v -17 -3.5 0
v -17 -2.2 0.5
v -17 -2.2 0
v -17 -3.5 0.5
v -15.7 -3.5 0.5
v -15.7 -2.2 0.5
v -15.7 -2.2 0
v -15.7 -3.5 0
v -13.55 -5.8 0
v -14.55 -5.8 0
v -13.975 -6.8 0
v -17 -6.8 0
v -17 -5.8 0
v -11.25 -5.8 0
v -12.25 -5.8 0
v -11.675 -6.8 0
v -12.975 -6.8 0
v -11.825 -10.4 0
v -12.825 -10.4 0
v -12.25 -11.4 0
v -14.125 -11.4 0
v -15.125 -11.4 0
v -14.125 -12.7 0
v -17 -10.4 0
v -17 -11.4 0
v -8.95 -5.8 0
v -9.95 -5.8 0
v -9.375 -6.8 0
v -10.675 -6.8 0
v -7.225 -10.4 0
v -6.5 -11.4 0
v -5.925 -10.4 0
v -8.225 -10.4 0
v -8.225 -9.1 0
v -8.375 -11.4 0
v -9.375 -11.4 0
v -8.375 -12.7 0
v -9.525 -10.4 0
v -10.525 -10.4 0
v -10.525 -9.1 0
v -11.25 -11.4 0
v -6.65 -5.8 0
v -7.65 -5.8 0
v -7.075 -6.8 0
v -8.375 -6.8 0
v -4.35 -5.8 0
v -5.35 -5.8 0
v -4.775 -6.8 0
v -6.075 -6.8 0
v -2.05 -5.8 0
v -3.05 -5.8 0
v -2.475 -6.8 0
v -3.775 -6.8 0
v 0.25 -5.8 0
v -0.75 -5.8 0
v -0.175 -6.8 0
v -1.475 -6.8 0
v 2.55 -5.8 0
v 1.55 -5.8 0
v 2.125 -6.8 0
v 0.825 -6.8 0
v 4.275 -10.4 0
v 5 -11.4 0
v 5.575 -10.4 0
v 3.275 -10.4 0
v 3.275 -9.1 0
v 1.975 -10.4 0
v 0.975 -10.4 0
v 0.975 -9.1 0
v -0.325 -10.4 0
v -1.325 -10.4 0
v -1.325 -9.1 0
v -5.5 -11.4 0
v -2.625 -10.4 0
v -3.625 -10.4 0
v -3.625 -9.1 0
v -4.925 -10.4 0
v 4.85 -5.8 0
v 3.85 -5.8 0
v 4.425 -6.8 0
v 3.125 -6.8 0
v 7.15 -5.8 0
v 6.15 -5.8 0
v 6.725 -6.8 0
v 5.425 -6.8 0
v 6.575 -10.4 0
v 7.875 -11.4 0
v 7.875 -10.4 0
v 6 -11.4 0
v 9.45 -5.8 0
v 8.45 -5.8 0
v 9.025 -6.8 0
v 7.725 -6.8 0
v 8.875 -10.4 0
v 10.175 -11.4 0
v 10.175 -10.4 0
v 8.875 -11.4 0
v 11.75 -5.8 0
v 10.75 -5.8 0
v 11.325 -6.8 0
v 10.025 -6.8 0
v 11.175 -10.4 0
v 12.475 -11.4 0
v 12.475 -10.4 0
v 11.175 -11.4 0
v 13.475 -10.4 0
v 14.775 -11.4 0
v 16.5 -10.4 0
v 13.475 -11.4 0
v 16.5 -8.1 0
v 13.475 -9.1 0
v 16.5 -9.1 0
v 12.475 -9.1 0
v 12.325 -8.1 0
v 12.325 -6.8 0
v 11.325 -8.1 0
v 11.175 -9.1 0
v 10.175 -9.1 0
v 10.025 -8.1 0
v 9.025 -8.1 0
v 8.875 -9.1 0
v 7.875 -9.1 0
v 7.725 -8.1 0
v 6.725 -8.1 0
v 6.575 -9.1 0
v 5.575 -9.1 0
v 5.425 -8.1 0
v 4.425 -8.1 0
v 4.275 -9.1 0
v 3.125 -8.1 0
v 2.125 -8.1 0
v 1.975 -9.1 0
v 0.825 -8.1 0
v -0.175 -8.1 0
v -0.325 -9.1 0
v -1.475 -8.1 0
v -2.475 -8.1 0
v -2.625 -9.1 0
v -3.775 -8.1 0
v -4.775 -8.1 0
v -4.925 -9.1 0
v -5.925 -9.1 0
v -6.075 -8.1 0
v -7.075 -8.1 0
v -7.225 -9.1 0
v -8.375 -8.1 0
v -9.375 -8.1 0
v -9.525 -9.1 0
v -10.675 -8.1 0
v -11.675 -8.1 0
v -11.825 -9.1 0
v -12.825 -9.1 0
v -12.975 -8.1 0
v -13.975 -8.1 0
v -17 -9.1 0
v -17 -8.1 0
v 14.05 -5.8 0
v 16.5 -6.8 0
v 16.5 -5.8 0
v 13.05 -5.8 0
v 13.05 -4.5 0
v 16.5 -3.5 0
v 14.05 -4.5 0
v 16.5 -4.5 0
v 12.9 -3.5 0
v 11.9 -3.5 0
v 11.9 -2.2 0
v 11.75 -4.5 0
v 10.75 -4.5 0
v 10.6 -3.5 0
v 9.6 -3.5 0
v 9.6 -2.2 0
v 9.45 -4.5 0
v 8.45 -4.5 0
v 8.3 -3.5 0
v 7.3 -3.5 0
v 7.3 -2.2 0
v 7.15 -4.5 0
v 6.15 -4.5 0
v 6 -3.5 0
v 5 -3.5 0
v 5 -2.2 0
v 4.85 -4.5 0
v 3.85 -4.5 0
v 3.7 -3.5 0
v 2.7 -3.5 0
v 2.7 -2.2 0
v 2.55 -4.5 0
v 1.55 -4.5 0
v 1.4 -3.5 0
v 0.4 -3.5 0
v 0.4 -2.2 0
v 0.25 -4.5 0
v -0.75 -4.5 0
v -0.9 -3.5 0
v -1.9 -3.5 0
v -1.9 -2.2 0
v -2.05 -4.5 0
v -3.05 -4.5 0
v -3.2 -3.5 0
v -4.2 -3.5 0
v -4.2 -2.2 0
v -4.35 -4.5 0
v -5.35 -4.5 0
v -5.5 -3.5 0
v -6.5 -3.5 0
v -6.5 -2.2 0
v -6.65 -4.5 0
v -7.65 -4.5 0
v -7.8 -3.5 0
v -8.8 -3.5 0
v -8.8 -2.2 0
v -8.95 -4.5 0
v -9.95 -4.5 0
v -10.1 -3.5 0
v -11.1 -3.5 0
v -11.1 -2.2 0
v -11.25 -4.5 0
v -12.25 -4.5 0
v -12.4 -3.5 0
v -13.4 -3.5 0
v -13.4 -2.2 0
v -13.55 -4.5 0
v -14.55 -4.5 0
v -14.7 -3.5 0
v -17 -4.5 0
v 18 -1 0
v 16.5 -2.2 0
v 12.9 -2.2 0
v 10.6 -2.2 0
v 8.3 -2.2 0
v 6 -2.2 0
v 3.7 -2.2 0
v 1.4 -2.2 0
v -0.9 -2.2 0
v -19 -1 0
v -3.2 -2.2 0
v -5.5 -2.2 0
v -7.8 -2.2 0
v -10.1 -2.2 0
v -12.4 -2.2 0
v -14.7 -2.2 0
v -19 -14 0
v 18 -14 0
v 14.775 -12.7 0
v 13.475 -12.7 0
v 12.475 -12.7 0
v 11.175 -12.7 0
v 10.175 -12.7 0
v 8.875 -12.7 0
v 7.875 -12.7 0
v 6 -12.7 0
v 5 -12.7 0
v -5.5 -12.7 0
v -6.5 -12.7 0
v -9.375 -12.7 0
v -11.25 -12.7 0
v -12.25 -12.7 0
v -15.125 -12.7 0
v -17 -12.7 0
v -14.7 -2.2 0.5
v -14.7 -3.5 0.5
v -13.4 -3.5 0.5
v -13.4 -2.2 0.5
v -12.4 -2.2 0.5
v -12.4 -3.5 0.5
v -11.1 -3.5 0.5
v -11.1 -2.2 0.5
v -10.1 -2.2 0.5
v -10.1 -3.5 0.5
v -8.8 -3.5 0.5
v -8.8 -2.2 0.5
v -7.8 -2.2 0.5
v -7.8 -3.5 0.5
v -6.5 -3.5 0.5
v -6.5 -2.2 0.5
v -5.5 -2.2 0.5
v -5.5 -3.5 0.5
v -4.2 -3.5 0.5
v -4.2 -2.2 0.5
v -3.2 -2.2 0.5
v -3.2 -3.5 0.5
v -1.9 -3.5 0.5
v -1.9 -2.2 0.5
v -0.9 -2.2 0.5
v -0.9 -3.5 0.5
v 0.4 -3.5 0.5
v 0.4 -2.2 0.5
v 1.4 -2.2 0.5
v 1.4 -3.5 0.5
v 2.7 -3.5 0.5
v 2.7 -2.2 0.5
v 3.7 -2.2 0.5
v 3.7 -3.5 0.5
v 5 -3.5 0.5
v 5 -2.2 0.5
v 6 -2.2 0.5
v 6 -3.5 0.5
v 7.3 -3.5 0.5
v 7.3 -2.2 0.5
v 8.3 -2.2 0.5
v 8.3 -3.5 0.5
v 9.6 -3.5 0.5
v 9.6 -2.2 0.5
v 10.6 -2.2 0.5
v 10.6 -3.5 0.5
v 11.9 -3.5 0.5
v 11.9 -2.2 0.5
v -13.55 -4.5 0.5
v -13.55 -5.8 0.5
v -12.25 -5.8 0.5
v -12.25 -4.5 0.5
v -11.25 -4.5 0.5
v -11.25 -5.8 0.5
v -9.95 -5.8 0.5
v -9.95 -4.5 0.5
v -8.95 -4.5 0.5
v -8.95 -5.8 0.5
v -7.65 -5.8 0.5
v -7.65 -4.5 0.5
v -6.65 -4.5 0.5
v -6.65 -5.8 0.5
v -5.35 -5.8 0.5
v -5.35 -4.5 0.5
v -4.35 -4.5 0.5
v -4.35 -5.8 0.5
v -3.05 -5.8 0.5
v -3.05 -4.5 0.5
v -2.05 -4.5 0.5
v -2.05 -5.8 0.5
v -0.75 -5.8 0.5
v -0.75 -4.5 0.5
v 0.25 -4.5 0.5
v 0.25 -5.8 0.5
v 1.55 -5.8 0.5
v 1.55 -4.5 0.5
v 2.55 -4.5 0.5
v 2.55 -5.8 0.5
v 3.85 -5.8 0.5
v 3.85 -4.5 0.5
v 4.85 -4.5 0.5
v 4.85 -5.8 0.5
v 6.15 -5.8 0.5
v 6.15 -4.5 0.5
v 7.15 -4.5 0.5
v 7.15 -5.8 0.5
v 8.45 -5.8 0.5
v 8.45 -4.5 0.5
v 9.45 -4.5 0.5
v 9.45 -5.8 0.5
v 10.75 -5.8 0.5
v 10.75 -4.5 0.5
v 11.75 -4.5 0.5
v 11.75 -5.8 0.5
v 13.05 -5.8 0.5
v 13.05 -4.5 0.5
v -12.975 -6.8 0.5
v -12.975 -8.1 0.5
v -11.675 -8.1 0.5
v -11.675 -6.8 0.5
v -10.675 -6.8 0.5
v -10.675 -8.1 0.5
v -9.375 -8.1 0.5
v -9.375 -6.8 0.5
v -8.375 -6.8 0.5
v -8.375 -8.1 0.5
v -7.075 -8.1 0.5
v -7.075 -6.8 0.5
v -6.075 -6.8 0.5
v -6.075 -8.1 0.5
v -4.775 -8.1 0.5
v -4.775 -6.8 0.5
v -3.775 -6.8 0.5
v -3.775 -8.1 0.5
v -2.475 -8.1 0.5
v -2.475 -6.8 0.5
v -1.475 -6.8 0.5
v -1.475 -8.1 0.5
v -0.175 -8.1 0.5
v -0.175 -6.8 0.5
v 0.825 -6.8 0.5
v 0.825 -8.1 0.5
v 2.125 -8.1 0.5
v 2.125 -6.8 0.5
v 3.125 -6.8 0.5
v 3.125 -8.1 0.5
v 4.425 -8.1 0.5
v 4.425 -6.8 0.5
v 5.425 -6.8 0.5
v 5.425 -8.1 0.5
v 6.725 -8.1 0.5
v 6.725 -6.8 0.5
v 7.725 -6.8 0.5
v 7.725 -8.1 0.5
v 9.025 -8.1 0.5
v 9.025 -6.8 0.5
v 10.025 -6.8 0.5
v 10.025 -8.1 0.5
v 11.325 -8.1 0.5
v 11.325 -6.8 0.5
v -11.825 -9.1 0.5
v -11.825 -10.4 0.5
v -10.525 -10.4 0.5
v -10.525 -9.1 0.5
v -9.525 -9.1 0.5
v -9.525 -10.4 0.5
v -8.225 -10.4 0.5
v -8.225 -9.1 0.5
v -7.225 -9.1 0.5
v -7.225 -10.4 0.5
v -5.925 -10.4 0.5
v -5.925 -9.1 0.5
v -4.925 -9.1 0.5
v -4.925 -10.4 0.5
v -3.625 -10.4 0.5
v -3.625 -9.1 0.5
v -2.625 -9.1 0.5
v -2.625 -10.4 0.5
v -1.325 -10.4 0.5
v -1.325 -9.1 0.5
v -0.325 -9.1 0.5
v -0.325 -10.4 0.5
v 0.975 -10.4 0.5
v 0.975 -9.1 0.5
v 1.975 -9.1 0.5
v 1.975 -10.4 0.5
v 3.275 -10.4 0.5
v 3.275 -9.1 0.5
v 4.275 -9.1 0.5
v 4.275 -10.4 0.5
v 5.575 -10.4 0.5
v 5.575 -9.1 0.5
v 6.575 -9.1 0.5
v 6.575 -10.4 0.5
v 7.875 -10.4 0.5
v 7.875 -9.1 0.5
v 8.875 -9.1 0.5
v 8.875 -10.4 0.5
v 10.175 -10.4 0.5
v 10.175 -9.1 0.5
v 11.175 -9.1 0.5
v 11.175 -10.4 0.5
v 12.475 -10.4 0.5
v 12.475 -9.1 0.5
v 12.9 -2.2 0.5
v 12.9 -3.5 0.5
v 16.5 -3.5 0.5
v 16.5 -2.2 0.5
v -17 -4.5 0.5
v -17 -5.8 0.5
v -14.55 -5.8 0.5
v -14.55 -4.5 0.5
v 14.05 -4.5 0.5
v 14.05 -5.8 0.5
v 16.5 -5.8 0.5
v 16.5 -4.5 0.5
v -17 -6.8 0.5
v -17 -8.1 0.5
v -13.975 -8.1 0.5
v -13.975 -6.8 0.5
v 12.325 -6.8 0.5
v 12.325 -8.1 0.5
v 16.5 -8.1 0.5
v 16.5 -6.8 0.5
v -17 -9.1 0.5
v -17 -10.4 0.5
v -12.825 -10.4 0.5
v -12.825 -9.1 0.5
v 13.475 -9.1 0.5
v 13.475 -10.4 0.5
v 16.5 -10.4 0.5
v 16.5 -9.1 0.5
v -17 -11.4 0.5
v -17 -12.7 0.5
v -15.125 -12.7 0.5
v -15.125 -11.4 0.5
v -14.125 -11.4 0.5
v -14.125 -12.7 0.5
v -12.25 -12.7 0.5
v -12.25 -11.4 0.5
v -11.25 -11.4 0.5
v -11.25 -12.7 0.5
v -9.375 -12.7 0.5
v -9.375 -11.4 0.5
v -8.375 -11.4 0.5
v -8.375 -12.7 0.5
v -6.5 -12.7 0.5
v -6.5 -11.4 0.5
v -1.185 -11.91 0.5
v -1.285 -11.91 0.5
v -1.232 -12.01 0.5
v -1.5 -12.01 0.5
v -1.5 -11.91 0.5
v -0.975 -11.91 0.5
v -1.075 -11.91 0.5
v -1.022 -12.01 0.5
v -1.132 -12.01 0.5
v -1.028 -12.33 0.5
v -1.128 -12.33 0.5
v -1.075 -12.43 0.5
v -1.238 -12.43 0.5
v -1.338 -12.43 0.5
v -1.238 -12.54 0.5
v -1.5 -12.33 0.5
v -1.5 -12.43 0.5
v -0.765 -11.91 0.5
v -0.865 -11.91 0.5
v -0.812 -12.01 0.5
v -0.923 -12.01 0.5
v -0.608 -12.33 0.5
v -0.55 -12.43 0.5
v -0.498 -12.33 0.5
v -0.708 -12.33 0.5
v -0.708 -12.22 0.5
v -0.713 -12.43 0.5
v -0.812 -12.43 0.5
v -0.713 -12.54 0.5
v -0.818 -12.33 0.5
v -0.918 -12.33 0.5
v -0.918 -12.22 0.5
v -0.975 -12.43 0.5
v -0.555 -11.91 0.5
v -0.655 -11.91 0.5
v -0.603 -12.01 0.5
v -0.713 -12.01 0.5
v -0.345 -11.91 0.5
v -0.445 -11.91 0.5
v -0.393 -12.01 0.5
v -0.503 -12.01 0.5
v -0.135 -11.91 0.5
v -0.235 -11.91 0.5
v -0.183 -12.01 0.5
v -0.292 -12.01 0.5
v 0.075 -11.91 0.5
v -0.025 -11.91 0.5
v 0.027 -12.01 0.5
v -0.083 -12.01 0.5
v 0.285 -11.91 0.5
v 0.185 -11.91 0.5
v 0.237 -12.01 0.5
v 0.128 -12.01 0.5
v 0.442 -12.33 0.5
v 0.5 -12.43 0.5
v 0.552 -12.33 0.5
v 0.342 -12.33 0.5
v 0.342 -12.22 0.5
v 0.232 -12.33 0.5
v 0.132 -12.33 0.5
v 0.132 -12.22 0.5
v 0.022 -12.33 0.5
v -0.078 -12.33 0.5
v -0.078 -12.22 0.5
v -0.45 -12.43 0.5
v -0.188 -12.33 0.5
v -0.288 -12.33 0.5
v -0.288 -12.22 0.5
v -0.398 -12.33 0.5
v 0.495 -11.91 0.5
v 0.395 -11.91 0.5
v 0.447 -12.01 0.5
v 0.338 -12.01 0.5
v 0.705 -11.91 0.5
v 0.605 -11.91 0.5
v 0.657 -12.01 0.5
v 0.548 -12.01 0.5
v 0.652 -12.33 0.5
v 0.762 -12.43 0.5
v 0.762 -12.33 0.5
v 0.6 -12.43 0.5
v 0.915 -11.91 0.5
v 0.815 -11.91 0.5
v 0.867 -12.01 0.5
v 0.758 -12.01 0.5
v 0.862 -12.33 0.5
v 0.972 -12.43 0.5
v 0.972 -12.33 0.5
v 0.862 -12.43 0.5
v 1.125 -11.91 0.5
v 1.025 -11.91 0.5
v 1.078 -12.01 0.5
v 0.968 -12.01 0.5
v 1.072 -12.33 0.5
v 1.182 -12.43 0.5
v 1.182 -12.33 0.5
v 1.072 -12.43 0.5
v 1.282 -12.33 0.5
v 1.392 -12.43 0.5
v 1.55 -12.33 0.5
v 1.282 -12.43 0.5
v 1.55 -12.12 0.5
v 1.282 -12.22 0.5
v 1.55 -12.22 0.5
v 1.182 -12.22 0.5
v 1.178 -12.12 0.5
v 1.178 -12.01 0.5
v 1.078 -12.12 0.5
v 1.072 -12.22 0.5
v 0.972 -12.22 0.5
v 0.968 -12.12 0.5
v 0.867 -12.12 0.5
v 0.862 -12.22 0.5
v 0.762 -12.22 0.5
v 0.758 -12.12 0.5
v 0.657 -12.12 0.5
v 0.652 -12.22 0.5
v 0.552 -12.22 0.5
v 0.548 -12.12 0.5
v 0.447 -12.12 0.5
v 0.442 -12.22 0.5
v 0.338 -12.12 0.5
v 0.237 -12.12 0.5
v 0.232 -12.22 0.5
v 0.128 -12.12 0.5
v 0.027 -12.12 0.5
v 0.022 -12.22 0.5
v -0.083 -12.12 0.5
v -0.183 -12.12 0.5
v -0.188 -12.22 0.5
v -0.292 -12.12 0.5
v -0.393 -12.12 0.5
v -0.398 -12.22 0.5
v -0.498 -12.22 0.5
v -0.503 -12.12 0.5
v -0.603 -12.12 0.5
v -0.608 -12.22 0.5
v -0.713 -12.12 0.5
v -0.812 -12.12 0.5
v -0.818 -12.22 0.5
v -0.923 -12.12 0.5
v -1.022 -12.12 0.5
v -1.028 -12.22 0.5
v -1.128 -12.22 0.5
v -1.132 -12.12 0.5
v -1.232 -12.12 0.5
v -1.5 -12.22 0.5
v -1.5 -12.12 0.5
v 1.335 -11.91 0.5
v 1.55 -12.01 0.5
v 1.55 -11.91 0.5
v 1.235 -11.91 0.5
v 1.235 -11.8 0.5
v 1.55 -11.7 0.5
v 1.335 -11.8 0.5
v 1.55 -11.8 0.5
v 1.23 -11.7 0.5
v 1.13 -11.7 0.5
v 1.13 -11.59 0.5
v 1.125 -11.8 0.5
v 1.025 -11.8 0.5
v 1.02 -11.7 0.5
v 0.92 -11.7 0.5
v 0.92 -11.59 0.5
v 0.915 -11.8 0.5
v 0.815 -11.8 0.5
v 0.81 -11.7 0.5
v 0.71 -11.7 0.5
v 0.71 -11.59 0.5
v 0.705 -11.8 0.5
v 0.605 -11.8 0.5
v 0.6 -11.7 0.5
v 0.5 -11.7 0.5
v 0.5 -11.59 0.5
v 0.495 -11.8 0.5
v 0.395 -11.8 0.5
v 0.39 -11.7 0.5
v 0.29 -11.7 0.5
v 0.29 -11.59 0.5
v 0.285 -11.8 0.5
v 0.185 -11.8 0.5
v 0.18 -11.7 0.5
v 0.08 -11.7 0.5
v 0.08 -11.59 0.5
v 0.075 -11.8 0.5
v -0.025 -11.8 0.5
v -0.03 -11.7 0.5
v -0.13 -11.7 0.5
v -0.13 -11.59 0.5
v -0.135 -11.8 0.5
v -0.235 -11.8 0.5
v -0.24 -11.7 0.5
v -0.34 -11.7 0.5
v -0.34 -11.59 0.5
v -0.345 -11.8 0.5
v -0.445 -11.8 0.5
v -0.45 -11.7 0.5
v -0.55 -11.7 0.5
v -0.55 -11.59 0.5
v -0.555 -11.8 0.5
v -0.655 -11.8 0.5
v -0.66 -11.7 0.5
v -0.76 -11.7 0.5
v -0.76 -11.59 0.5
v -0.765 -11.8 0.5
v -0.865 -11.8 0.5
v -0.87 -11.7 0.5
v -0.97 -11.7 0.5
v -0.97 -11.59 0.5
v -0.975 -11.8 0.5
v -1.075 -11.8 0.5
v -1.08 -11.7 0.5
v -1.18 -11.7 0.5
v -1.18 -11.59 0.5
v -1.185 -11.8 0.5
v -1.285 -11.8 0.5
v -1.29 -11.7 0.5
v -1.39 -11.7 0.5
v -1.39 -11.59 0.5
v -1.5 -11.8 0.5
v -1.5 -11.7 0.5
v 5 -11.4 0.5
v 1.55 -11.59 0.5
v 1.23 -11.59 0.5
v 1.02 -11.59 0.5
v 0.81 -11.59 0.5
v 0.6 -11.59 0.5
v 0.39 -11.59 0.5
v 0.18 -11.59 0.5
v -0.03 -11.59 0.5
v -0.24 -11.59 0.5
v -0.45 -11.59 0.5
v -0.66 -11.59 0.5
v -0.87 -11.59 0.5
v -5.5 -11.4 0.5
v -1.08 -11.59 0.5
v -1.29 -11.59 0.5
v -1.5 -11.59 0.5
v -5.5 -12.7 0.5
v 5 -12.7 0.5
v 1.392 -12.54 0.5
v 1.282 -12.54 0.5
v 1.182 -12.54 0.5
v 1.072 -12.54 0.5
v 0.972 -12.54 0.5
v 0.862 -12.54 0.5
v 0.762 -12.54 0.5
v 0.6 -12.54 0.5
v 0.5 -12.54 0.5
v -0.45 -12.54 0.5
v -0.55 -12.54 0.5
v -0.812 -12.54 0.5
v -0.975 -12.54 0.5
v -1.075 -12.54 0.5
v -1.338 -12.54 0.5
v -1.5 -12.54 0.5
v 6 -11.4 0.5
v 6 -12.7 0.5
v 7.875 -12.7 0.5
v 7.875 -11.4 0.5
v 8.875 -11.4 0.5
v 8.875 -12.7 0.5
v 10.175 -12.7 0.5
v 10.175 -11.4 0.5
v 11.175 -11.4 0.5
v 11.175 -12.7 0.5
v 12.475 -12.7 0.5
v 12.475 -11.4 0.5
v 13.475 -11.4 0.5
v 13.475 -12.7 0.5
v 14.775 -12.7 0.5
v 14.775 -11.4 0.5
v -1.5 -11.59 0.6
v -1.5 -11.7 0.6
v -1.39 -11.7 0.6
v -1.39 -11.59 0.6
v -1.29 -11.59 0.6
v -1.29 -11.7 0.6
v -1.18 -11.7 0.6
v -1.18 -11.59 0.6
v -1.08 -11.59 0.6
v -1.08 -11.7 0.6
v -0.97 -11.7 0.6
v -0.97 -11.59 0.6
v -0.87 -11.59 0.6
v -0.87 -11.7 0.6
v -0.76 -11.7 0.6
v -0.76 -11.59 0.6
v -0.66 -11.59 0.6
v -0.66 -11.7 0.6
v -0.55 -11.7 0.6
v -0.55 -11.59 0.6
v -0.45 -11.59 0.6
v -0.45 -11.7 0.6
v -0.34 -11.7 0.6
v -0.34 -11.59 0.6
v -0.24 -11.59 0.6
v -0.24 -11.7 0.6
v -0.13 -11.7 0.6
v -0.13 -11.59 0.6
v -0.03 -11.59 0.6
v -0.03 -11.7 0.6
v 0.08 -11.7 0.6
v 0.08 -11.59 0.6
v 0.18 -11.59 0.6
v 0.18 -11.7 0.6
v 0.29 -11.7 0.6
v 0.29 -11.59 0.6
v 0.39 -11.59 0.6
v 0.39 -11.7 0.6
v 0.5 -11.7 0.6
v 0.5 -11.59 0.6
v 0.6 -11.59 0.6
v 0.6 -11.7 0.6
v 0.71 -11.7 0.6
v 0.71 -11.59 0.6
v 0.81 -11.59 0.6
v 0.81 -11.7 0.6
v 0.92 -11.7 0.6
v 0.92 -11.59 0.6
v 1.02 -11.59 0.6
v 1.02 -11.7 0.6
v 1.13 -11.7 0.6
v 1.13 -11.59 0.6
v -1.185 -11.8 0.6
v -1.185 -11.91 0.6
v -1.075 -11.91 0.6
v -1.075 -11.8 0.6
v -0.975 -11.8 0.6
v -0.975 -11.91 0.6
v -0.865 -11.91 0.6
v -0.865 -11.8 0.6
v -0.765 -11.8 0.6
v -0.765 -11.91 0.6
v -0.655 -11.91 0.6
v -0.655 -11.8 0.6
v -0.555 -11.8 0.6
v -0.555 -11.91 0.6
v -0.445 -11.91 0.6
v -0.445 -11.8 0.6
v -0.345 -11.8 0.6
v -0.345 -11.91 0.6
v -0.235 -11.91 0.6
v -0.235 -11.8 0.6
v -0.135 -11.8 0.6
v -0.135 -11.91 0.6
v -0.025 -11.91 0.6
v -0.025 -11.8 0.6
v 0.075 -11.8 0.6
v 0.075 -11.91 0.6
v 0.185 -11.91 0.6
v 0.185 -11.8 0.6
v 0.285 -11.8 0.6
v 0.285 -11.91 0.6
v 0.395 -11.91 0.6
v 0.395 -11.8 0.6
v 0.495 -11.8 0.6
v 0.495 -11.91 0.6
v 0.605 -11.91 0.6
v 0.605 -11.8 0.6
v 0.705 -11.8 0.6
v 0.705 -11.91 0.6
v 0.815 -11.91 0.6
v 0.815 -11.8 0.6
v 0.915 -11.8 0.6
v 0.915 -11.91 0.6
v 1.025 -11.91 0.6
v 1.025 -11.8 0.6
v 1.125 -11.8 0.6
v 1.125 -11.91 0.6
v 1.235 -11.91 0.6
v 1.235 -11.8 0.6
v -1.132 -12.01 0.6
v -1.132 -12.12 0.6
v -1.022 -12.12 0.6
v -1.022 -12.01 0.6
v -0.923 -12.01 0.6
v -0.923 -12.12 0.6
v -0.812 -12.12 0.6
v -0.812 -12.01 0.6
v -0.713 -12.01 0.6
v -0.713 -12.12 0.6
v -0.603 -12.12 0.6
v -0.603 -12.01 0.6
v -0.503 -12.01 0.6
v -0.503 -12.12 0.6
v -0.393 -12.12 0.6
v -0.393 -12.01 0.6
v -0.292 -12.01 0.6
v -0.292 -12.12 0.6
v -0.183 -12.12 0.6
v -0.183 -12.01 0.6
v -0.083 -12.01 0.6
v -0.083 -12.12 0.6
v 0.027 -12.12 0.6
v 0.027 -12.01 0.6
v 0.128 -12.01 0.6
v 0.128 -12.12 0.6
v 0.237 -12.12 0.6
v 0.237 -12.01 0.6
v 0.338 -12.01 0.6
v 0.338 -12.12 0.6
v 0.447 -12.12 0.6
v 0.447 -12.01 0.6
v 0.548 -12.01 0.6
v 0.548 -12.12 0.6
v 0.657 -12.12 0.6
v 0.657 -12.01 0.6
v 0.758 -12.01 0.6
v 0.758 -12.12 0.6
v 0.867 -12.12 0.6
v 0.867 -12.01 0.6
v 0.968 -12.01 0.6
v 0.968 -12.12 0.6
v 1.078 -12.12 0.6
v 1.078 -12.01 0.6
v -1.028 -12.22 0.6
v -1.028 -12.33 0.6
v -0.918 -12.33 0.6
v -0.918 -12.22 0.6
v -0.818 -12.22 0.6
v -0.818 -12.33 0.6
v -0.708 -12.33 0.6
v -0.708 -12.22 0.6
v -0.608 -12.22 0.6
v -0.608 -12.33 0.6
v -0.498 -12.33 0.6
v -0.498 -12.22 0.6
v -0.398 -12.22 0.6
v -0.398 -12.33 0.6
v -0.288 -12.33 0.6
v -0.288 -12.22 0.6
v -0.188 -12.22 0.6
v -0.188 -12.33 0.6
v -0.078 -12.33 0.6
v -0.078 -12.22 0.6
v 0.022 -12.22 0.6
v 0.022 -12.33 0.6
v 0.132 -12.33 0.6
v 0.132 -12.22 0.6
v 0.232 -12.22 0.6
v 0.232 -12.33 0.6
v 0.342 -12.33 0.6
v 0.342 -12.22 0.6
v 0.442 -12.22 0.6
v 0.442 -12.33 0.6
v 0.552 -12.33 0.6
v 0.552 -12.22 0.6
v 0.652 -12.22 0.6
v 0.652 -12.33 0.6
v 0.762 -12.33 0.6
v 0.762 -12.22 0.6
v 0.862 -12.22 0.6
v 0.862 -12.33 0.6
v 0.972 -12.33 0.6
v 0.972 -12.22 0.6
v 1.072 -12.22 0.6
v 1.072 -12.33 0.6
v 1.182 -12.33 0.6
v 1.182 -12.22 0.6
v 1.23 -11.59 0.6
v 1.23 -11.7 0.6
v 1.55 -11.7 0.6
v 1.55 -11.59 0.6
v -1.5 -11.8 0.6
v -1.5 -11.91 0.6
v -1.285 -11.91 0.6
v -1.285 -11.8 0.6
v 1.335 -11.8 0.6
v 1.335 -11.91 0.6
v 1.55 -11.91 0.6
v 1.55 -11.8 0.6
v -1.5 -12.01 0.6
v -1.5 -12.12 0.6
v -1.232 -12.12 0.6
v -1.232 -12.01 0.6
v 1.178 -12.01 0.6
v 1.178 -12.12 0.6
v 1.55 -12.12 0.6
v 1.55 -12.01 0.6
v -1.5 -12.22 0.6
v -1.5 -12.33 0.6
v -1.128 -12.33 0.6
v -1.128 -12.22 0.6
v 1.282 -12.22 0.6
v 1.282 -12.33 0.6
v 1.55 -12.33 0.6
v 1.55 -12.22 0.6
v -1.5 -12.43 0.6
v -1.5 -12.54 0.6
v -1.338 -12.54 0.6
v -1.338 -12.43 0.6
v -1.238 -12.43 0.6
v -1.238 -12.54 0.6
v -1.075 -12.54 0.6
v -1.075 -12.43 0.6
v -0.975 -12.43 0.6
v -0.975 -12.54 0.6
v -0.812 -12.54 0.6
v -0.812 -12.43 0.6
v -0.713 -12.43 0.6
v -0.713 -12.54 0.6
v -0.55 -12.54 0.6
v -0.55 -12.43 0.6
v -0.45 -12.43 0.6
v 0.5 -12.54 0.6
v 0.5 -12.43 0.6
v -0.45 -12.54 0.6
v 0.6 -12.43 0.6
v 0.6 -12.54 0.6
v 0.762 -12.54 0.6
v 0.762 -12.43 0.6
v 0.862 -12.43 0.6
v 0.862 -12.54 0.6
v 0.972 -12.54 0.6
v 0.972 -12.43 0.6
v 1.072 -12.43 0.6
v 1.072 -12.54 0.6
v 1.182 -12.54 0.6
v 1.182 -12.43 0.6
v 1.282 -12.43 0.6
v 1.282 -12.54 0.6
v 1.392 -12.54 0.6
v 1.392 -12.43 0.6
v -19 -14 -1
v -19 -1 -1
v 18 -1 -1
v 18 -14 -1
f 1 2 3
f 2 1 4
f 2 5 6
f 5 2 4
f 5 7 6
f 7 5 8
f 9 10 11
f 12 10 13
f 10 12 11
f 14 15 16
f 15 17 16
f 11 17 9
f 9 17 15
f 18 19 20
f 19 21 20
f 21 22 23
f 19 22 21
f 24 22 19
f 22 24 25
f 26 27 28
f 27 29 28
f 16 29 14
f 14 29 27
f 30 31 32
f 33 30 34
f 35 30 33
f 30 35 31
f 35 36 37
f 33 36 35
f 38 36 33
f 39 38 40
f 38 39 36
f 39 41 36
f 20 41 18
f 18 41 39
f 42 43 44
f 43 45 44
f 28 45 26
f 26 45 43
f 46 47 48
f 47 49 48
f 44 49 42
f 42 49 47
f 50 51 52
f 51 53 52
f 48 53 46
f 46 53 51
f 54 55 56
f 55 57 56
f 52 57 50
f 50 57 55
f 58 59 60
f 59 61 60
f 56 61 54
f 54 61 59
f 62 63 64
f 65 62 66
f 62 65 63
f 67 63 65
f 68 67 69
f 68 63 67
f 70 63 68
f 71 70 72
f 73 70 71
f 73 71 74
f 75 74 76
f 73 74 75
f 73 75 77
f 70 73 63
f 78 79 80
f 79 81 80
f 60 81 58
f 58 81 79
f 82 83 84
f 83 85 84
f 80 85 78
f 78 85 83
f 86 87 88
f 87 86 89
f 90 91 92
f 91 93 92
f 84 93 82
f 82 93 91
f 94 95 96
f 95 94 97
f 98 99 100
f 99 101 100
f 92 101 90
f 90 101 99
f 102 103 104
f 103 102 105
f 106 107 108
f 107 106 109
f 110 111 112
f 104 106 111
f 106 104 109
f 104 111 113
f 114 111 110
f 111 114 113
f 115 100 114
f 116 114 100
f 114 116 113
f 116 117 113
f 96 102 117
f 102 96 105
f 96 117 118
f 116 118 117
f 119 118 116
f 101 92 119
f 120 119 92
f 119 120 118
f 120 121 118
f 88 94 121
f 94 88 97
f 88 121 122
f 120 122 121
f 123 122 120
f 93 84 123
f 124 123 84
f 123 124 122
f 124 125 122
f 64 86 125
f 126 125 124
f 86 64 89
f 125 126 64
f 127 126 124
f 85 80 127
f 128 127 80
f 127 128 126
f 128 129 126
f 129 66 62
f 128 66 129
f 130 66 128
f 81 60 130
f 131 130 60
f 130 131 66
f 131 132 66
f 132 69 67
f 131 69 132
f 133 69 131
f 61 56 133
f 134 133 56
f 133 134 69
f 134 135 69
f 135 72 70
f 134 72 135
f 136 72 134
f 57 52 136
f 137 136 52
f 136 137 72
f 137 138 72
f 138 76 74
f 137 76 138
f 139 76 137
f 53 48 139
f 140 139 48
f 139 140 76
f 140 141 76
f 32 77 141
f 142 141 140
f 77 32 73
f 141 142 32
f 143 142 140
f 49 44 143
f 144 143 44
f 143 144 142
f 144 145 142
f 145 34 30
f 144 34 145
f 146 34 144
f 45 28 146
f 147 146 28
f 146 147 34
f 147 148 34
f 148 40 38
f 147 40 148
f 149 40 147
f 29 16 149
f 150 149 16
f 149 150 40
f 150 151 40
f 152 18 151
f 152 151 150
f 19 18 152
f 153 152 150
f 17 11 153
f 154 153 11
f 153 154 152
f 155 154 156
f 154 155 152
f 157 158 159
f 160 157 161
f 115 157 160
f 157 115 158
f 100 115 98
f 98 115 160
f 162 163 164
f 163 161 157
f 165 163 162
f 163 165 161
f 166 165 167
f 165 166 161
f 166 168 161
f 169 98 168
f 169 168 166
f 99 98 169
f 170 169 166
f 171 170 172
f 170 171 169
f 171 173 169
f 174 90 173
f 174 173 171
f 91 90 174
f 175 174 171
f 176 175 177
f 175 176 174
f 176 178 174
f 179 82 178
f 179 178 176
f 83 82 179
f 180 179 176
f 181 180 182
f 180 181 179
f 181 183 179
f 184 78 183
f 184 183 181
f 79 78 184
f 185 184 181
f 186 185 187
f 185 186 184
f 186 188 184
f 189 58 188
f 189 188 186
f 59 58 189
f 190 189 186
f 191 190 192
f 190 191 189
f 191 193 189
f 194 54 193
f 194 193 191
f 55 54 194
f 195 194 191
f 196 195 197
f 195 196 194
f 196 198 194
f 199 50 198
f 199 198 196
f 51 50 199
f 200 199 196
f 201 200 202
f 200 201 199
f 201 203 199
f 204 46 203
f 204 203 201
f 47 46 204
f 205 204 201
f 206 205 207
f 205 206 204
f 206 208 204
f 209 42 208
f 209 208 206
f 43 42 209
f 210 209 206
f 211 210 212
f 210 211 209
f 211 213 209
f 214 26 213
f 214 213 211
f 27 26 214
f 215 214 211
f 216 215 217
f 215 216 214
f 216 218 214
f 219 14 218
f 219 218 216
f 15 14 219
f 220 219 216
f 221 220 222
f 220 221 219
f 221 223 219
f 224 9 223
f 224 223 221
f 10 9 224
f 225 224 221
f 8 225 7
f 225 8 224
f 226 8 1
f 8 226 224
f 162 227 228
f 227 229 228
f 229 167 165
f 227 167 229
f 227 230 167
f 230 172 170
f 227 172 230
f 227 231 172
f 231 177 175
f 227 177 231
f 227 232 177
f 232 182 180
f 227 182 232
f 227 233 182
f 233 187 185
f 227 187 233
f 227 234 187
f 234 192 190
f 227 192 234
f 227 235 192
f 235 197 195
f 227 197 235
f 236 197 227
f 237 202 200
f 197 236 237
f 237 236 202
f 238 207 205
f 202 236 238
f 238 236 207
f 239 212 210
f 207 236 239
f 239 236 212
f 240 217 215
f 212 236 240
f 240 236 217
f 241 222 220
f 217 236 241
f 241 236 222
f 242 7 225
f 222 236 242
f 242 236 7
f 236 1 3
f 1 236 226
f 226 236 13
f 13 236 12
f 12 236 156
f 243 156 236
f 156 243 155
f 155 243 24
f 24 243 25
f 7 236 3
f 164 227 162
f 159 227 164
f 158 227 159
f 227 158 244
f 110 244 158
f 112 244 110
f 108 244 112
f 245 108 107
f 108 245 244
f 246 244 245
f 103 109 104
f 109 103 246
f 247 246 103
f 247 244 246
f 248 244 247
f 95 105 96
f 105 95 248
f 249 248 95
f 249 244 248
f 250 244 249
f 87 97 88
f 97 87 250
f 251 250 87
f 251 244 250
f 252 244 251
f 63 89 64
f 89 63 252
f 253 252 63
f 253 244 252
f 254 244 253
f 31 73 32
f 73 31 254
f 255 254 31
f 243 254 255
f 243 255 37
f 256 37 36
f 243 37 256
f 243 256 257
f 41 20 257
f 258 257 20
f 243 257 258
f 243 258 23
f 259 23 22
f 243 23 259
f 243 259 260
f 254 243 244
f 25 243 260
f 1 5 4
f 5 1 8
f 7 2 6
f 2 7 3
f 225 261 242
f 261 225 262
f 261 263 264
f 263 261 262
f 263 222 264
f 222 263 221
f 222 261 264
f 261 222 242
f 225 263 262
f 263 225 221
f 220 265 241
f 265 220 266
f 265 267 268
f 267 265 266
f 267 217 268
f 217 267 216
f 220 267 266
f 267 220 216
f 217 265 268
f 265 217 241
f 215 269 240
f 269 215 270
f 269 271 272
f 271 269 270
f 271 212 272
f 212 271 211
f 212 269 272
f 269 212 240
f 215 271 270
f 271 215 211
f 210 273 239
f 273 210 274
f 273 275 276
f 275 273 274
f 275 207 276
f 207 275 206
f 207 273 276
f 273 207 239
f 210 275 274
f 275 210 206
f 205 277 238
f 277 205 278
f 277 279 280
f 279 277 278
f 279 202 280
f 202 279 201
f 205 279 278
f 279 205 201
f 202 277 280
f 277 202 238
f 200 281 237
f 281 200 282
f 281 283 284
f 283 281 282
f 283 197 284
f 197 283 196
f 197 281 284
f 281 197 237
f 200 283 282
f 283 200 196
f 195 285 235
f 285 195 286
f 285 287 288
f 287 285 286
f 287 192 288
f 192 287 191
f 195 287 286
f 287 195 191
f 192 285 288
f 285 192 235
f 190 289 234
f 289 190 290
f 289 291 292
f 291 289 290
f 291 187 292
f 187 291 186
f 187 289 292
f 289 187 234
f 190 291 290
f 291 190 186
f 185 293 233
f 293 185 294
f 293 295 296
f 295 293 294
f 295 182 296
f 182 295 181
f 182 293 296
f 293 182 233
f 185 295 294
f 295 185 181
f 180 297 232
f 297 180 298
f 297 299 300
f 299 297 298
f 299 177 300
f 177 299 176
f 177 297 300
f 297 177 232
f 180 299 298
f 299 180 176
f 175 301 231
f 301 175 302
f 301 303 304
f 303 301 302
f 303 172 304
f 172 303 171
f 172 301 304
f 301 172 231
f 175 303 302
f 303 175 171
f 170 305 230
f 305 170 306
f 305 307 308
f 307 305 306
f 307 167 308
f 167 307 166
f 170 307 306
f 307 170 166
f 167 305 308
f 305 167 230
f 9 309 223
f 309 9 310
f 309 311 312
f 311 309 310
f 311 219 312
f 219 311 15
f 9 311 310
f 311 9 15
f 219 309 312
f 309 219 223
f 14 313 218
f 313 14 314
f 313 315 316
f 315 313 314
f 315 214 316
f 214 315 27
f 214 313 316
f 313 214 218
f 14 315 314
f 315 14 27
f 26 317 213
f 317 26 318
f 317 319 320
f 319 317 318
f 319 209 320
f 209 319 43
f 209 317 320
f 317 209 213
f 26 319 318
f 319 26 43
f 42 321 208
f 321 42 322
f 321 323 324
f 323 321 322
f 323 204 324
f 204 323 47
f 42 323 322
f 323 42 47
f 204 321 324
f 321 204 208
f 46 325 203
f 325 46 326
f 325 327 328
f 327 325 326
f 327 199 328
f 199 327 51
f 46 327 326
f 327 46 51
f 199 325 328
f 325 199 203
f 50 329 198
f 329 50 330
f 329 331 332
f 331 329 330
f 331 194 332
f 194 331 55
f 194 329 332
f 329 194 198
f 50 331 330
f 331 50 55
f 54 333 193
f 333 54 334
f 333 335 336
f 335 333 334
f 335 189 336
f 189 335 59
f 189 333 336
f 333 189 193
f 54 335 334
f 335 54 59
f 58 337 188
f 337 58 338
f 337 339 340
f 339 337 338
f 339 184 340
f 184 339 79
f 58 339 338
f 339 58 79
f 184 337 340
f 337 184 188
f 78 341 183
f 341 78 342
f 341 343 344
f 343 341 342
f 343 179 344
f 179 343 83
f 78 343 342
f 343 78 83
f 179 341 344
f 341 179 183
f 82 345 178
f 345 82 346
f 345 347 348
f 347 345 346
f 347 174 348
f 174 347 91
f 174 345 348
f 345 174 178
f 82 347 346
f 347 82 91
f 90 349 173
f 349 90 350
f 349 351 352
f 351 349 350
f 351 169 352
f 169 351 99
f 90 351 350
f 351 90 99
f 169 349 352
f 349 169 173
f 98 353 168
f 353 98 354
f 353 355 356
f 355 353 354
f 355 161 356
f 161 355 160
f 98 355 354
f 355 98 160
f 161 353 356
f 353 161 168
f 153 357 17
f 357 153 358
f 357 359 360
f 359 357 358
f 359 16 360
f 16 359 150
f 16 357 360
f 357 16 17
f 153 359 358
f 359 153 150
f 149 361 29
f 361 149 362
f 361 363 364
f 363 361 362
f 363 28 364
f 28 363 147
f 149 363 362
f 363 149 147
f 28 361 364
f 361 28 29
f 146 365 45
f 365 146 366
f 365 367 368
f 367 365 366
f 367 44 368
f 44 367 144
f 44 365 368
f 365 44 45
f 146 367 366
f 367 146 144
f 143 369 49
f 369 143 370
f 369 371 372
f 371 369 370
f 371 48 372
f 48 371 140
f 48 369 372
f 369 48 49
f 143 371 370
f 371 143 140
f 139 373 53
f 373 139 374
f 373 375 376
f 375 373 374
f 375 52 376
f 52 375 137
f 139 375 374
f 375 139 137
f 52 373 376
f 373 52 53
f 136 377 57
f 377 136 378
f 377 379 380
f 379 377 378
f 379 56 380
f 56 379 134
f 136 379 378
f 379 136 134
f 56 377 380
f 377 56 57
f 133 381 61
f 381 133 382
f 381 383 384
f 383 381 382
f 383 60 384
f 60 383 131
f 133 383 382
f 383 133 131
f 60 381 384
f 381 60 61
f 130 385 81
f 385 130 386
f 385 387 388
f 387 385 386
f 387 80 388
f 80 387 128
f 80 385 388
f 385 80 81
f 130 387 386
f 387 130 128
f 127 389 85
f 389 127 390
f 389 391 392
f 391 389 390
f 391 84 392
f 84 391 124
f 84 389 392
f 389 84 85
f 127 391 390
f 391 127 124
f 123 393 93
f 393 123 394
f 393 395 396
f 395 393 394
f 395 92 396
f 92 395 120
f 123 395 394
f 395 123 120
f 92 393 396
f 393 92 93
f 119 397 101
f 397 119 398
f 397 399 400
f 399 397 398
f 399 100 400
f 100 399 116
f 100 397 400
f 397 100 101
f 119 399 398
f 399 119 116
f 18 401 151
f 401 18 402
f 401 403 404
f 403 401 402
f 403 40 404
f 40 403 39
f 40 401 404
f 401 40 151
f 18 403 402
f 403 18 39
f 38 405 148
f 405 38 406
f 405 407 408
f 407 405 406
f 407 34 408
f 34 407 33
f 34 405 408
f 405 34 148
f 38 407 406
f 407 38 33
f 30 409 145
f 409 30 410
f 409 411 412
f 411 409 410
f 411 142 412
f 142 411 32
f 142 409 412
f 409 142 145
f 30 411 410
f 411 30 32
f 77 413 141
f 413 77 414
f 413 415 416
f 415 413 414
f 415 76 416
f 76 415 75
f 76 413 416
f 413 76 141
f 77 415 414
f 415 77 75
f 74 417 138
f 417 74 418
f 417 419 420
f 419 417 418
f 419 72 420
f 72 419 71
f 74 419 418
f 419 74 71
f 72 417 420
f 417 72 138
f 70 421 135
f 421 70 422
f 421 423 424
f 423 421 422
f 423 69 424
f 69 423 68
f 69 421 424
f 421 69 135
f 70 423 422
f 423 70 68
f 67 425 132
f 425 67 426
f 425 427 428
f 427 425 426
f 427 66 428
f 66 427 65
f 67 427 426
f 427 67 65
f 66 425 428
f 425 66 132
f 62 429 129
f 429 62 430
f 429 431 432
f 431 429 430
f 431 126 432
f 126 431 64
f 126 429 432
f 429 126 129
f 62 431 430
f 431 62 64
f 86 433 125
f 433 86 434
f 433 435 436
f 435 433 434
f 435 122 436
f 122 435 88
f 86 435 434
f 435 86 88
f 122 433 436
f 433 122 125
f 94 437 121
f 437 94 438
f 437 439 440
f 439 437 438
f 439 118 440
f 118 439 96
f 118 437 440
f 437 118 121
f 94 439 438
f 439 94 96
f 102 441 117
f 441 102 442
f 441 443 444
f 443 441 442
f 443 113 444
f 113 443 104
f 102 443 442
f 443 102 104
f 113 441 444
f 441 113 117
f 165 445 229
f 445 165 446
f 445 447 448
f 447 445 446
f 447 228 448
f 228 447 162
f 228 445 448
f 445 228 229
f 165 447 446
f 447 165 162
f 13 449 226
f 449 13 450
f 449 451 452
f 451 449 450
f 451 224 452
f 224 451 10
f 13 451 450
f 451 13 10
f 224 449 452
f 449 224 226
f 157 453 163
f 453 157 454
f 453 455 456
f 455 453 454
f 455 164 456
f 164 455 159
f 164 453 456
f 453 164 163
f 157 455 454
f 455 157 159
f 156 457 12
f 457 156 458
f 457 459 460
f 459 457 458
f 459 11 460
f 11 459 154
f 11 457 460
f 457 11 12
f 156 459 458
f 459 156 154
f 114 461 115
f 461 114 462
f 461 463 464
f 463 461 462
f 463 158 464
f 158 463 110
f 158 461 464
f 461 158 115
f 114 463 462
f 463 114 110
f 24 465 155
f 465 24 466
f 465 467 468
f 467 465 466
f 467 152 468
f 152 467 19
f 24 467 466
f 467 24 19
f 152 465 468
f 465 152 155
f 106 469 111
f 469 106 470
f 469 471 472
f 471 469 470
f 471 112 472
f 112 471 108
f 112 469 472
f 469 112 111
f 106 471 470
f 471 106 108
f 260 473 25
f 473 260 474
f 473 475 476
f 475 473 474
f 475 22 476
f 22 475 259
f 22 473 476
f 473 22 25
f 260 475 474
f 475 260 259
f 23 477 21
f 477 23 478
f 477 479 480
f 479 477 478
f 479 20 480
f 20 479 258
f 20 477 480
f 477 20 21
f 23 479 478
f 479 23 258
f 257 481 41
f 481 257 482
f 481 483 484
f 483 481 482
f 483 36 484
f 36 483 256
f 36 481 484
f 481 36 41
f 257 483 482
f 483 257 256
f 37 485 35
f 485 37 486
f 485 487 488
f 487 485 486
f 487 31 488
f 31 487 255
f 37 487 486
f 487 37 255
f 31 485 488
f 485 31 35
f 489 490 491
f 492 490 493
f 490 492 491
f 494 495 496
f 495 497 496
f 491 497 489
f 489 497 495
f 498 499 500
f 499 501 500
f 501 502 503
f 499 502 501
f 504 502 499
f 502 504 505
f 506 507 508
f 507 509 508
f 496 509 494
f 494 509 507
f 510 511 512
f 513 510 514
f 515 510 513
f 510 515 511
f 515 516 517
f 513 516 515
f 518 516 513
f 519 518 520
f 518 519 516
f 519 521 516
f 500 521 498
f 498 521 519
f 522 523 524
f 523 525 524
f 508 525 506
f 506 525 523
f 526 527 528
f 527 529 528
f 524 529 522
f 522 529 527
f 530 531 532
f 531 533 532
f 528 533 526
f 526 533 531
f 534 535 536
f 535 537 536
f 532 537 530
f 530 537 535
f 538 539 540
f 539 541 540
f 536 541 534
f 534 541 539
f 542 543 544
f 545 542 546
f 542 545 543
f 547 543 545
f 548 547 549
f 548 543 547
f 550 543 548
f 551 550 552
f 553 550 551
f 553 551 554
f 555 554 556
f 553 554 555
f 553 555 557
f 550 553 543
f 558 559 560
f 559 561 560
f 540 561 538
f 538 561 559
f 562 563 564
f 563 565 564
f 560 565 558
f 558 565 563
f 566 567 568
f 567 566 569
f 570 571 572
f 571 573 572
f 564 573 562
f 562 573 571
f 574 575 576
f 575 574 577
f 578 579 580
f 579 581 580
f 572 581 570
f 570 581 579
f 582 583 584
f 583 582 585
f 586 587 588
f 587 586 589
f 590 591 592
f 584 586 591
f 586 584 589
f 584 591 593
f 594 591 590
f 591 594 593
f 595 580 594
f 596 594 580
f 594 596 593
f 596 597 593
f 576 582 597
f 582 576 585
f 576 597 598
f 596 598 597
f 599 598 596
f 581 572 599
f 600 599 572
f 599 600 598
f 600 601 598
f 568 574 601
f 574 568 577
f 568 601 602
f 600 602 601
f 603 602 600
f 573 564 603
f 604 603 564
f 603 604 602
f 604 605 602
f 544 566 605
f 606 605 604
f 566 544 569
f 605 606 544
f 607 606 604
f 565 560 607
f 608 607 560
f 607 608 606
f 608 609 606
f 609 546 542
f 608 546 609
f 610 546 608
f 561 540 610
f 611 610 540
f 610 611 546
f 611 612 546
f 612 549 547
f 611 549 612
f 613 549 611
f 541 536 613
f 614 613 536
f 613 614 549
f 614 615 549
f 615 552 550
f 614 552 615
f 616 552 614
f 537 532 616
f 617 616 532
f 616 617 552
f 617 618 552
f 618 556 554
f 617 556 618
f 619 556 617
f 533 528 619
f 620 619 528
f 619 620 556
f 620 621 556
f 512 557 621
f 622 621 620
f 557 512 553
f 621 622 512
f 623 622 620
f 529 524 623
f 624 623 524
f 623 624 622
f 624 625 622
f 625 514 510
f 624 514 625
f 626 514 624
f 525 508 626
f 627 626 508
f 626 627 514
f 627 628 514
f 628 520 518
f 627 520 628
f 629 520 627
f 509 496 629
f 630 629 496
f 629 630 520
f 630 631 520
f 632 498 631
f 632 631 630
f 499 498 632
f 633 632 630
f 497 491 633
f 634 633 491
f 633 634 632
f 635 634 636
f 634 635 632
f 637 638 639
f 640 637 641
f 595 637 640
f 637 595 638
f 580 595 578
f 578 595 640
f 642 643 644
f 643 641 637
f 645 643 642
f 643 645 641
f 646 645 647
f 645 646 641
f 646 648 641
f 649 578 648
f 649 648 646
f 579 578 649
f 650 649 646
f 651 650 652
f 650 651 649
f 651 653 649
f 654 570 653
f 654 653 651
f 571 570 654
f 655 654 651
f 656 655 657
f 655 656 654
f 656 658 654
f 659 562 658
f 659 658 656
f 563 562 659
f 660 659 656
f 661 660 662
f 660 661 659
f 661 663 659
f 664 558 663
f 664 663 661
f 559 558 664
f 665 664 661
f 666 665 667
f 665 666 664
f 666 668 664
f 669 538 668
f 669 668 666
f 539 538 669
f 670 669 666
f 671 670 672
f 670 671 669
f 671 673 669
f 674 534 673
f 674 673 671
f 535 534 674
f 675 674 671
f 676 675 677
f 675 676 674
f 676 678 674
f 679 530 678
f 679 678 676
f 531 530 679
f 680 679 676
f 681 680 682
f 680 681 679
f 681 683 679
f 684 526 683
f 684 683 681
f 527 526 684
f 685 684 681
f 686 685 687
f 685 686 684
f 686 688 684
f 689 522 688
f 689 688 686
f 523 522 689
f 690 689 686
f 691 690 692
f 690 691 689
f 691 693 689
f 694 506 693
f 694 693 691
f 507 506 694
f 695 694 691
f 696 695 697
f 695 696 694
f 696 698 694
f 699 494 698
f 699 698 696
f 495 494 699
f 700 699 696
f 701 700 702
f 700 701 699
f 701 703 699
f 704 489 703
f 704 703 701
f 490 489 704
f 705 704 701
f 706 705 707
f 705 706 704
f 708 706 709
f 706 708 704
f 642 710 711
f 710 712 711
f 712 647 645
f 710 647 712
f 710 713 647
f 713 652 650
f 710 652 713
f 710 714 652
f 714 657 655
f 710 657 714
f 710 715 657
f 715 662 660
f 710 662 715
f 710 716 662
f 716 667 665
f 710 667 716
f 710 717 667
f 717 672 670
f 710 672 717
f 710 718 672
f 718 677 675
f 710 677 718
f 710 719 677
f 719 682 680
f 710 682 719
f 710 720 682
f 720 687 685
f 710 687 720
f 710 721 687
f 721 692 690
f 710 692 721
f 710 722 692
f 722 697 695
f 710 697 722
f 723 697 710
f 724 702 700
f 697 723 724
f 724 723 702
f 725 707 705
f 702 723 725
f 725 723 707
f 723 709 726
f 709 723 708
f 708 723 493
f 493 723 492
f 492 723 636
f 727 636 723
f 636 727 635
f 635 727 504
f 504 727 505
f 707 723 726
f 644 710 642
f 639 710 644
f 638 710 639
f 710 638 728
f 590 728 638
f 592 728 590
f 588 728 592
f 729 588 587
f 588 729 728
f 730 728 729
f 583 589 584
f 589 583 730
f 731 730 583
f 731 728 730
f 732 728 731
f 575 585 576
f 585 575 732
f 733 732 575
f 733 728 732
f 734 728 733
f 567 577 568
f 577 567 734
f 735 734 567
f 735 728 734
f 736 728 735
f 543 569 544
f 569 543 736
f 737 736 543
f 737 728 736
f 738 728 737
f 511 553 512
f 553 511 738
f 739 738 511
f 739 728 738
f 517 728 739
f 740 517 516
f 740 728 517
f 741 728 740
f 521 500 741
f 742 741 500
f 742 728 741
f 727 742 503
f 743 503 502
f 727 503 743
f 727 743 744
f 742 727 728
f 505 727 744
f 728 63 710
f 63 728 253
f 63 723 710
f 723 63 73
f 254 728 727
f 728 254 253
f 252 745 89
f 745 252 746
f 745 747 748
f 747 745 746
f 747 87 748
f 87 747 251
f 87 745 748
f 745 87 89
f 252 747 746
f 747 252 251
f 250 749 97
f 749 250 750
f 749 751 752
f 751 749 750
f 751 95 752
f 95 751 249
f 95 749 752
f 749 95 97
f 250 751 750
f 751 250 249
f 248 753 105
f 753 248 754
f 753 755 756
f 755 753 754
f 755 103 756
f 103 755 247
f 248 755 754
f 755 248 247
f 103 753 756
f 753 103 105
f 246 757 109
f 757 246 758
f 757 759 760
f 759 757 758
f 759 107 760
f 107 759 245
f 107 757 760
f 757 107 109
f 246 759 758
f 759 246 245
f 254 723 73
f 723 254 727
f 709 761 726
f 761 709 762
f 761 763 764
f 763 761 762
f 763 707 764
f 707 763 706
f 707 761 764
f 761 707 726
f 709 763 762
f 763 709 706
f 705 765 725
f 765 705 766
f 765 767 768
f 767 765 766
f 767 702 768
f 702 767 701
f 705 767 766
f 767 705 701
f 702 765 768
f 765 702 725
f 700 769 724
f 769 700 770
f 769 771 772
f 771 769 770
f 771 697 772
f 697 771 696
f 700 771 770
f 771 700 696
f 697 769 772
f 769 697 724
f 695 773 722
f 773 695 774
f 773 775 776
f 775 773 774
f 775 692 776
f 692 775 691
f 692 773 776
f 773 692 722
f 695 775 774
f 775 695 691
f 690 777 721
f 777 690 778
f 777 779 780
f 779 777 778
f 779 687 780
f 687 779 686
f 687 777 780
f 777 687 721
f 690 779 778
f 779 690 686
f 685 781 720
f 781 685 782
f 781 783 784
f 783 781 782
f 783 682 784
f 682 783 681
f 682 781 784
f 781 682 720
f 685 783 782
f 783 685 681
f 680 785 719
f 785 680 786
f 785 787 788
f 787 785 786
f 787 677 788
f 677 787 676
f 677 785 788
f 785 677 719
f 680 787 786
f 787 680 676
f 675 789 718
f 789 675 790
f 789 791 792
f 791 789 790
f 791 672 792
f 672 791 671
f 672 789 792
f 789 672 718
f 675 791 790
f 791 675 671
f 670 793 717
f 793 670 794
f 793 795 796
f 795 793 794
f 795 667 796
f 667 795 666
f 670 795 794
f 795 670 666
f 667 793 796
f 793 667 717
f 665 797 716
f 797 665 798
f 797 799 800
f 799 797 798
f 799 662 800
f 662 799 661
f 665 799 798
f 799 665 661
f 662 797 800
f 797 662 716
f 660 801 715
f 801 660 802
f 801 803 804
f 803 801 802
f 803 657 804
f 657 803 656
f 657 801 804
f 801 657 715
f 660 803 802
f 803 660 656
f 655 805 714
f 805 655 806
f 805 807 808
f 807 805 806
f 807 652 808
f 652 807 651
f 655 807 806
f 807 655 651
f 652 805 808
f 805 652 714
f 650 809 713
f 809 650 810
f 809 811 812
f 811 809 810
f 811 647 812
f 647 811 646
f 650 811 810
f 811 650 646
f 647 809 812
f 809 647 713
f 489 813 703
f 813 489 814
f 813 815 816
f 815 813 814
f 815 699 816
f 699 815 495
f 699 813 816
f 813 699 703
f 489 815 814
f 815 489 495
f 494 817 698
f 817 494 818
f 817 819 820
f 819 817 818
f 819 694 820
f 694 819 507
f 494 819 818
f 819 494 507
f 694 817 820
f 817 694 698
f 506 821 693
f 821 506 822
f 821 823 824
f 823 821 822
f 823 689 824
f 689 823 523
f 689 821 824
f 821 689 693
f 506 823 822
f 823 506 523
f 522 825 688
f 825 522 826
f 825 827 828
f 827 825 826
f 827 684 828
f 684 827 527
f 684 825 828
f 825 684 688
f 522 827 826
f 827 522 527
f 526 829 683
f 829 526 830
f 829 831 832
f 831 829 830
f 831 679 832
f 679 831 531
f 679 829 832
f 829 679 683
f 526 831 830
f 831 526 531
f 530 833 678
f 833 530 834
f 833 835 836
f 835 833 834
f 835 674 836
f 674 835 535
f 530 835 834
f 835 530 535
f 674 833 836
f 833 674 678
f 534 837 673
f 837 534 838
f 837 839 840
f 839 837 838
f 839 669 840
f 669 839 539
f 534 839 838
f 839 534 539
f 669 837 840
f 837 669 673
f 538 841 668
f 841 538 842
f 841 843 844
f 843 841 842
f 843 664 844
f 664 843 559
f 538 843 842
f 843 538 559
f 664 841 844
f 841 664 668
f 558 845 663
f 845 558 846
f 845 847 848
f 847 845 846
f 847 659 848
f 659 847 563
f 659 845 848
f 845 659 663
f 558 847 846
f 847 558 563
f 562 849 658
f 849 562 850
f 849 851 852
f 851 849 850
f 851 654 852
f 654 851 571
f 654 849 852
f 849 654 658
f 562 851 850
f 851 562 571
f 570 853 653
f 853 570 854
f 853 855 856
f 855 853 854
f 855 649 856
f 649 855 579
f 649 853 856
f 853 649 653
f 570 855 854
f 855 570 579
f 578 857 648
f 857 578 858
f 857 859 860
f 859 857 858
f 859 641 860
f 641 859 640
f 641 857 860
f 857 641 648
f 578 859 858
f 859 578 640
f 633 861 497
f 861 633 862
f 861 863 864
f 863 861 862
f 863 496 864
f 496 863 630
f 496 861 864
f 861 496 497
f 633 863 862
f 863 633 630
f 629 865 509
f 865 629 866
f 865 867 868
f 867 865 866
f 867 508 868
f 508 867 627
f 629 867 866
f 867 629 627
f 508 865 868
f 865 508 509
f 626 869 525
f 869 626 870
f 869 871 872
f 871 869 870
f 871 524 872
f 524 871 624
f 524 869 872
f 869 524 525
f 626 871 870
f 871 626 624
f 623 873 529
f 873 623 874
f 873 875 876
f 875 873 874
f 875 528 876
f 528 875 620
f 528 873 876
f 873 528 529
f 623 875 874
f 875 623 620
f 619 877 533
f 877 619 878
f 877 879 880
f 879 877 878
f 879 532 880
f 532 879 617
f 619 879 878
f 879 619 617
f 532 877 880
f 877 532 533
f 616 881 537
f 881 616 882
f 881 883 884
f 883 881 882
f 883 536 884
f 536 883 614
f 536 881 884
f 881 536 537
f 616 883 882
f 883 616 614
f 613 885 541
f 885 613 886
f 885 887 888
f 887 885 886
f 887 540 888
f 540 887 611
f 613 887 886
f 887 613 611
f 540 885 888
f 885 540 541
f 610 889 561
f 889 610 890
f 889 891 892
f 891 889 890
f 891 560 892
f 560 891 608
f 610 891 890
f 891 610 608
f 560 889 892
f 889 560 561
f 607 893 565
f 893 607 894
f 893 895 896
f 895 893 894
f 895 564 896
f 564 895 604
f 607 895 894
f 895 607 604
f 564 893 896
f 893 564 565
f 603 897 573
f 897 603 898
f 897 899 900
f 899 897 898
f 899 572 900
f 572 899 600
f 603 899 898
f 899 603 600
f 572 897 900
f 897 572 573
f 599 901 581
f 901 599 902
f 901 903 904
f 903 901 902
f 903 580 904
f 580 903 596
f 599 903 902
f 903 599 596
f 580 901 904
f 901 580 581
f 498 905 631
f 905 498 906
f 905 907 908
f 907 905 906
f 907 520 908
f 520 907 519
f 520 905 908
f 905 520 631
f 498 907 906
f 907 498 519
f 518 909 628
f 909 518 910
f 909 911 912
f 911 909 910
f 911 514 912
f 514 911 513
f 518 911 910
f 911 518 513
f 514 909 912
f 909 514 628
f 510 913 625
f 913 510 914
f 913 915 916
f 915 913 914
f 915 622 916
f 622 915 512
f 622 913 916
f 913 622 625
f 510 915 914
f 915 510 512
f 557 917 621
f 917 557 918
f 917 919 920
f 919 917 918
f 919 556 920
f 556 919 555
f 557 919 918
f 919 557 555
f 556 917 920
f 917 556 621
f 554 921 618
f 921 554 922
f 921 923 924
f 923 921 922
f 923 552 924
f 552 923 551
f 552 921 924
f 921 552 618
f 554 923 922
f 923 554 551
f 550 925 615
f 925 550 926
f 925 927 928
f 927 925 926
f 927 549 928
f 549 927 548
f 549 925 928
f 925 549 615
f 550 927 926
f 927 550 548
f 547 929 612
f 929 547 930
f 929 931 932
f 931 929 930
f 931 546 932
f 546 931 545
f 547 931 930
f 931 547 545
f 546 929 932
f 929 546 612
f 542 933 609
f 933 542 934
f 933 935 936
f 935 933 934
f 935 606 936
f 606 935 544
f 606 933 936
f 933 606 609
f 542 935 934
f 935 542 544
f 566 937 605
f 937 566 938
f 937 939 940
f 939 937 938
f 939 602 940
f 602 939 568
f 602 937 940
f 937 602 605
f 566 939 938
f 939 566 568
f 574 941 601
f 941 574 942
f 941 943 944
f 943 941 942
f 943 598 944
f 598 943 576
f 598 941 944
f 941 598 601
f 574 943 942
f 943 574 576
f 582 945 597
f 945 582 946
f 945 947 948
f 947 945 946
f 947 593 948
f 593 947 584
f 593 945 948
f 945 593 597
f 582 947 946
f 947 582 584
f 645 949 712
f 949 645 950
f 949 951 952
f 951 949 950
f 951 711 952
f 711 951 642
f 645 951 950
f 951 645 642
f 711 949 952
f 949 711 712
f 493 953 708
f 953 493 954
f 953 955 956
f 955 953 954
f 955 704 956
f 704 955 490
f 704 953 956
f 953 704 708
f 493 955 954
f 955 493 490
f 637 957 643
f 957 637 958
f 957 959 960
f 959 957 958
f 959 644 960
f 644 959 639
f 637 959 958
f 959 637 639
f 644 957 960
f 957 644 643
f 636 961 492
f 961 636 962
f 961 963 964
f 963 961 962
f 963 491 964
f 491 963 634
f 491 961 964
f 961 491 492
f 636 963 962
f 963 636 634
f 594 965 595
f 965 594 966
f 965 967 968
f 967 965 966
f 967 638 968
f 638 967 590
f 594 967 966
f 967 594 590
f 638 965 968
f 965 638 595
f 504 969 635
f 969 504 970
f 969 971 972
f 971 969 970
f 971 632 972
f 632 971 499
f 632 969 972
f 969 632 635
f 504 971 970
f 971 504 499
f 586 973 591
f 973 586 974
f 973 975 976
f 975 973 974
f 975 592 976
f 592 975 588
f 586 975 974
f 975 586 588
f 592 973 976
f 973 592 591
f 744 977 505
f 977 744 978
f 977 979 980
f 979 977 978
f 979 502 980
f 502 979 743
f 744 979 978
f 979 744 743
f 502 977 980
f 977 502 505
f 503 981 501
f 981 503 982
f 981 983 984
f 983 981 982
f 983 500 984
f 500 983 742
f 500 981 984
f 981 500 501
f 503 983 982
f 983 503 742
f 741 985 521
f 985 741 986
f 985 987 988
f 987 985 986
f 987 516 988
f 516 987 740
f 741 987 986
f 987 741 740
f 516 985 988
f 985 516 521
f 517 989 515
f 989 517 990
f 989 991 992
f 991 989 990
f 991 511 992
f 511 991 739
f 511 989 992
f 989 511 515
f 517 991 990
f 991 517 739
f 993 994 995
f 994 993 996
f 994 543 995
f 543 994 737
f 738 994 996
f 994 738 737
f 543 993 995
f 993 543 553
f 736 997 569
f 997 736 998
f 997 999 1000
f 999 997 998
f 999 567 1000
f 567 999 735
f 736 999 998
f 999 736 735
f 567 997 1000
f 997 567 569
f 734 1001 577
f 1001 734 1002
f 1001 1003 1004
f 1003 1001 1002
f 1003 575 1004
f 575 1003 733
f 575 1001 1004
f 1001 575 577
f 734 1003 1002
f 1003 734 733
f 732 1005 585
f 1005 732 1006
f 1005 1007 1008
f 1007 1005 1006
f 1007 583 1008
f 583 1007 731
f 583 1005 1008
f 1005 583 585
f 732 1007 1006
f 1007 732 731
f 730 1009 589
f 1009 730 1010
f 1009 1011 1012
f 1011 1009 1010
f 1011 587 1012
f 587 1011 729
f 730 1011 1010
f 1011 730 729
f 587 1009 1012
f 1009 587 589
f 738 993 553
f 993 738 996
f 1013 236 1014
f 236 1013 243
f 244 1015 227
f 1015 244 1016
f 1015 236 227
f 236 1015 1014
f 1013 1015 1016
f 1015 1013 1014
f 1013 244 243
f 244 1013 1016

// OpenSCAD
/* u3_75_keycap(); */

translate ([0, 10, 0]) {
    /* u3_75_keycap(); */
    translate ([-112, 40, 0]) {
        da64_space_keycap();
    }
}

module u3_75_keycap() {
    size = 66;
    height = 16;
    depth = 1;

    crosshole3x();

    translate ([-size/2, -height/2, -depth]) {
        cube ([size, height, depth]);
    }
}

module crosshole3x() {
    crosshole();
    translate([-12, 0, 0]) {
        crosshole();
    }
    translate([12, 0, 0]) {
        crosshole();
    }
}

module crosshole() {
    extra = 0.12;

    height = 4.5;
    radius = 5.5 / 2;
    difference() {
        union() {
            cylinder(height, radius, radius);
            cylinder(1, 2*radius, radius);
            strut_size = 12;
            strut_width = 2;
            strut_height = 0.5;
            translate ([-strut_size/2, -strut_width/2, 0]) {
                cube ([strut_size, strut_width, strut_height]);
            }
        }

        cross_size = 4 + extra;
        cross_width = 1 + extra;
        translate ([-cross_size / 2, -cross_width / 2, 0]) {
            cube ([cross_size, cross_width, height]);
        }
        translate ([-cross_width / 2, -cross_size / 2, 0]) {
            cube ([cross_width, cross_size, height]);
        }
    }
}

module da64_space_keycap() {
    /* da64_image(only_space=true); */

    
    def_total = 3 + 10 + 3;
    def_space_x = 5 * def_total;
    def_space_y = -4 * def_total;
    translate ([def_space_x+13, def_space_y, -1]) {
        cube([37, 13, 1]);
    }
    min_total = 1 + 0.3 + 1;
    min_depth = 0.5;
    translate ([def_space_x + 15, def_space_y + def_total - 5.5, min_depth]) {
        da64_image(size=0.3, depth=min_depth, margin=1);
        min_space_x = 5 * min_total;
        min_space_y = -4 * min_total;
        translate ([min_space_x+4, min_space_y+1, 0.1]) {
            da64_image(size=0.01, depth=0.2, margin=0.1);
        }
    }

    module da64_image(size=10, depth=1, margin=3, only_space=false) {
        if (!only_space) {
            for (x = [0 : 12]) {
                key(x, 0);
            }
            key(13, 0, mul=2);

            key(0, 1, mul=1.5);
            for (x = [1 : 12]) {
                key(x + 0.5, 1);
            }
            key(13.5, 1, mul=1.5);

            key(0, 2, mul=1.75);
            for (x = [1 : 11]) {
                key(x + 0.75, 2);
            }
            key(12.75, 2, mul=2.25);

            key(0, 3, mul=2.25);
            for (x = [1 : 11]) {
                key(x + 1.25, 3);
            }
            key(12 + 1.25, 3, mul=1.75);

            key(0, 4, mul=1.25);
            key(1 + 0.25, 4, mul=1.25);
            key(2 + 0.5, 4, mul=1.25);
            key(3 + 0.75, 4, mul=1.25);
        }
        key(4 + 1, 4, mul=4.25);
        if (!only_space) {
            key(5 + 3.75, 4, mul=1.25);
            key(6 + 4, 4, mul=1.25);
            key(7 + 4.25, 4);
            key(8 + 4.25, 4);
            key(9 + 4.25, 4);
        }

        module key(x, y, mul=1) {
            total = margin + size + margin;
            translate ([x * total, -y * total, -depth]) {
                cube ([total*mul - margin, total - margin, depth]);
            }
        }
    }
}
